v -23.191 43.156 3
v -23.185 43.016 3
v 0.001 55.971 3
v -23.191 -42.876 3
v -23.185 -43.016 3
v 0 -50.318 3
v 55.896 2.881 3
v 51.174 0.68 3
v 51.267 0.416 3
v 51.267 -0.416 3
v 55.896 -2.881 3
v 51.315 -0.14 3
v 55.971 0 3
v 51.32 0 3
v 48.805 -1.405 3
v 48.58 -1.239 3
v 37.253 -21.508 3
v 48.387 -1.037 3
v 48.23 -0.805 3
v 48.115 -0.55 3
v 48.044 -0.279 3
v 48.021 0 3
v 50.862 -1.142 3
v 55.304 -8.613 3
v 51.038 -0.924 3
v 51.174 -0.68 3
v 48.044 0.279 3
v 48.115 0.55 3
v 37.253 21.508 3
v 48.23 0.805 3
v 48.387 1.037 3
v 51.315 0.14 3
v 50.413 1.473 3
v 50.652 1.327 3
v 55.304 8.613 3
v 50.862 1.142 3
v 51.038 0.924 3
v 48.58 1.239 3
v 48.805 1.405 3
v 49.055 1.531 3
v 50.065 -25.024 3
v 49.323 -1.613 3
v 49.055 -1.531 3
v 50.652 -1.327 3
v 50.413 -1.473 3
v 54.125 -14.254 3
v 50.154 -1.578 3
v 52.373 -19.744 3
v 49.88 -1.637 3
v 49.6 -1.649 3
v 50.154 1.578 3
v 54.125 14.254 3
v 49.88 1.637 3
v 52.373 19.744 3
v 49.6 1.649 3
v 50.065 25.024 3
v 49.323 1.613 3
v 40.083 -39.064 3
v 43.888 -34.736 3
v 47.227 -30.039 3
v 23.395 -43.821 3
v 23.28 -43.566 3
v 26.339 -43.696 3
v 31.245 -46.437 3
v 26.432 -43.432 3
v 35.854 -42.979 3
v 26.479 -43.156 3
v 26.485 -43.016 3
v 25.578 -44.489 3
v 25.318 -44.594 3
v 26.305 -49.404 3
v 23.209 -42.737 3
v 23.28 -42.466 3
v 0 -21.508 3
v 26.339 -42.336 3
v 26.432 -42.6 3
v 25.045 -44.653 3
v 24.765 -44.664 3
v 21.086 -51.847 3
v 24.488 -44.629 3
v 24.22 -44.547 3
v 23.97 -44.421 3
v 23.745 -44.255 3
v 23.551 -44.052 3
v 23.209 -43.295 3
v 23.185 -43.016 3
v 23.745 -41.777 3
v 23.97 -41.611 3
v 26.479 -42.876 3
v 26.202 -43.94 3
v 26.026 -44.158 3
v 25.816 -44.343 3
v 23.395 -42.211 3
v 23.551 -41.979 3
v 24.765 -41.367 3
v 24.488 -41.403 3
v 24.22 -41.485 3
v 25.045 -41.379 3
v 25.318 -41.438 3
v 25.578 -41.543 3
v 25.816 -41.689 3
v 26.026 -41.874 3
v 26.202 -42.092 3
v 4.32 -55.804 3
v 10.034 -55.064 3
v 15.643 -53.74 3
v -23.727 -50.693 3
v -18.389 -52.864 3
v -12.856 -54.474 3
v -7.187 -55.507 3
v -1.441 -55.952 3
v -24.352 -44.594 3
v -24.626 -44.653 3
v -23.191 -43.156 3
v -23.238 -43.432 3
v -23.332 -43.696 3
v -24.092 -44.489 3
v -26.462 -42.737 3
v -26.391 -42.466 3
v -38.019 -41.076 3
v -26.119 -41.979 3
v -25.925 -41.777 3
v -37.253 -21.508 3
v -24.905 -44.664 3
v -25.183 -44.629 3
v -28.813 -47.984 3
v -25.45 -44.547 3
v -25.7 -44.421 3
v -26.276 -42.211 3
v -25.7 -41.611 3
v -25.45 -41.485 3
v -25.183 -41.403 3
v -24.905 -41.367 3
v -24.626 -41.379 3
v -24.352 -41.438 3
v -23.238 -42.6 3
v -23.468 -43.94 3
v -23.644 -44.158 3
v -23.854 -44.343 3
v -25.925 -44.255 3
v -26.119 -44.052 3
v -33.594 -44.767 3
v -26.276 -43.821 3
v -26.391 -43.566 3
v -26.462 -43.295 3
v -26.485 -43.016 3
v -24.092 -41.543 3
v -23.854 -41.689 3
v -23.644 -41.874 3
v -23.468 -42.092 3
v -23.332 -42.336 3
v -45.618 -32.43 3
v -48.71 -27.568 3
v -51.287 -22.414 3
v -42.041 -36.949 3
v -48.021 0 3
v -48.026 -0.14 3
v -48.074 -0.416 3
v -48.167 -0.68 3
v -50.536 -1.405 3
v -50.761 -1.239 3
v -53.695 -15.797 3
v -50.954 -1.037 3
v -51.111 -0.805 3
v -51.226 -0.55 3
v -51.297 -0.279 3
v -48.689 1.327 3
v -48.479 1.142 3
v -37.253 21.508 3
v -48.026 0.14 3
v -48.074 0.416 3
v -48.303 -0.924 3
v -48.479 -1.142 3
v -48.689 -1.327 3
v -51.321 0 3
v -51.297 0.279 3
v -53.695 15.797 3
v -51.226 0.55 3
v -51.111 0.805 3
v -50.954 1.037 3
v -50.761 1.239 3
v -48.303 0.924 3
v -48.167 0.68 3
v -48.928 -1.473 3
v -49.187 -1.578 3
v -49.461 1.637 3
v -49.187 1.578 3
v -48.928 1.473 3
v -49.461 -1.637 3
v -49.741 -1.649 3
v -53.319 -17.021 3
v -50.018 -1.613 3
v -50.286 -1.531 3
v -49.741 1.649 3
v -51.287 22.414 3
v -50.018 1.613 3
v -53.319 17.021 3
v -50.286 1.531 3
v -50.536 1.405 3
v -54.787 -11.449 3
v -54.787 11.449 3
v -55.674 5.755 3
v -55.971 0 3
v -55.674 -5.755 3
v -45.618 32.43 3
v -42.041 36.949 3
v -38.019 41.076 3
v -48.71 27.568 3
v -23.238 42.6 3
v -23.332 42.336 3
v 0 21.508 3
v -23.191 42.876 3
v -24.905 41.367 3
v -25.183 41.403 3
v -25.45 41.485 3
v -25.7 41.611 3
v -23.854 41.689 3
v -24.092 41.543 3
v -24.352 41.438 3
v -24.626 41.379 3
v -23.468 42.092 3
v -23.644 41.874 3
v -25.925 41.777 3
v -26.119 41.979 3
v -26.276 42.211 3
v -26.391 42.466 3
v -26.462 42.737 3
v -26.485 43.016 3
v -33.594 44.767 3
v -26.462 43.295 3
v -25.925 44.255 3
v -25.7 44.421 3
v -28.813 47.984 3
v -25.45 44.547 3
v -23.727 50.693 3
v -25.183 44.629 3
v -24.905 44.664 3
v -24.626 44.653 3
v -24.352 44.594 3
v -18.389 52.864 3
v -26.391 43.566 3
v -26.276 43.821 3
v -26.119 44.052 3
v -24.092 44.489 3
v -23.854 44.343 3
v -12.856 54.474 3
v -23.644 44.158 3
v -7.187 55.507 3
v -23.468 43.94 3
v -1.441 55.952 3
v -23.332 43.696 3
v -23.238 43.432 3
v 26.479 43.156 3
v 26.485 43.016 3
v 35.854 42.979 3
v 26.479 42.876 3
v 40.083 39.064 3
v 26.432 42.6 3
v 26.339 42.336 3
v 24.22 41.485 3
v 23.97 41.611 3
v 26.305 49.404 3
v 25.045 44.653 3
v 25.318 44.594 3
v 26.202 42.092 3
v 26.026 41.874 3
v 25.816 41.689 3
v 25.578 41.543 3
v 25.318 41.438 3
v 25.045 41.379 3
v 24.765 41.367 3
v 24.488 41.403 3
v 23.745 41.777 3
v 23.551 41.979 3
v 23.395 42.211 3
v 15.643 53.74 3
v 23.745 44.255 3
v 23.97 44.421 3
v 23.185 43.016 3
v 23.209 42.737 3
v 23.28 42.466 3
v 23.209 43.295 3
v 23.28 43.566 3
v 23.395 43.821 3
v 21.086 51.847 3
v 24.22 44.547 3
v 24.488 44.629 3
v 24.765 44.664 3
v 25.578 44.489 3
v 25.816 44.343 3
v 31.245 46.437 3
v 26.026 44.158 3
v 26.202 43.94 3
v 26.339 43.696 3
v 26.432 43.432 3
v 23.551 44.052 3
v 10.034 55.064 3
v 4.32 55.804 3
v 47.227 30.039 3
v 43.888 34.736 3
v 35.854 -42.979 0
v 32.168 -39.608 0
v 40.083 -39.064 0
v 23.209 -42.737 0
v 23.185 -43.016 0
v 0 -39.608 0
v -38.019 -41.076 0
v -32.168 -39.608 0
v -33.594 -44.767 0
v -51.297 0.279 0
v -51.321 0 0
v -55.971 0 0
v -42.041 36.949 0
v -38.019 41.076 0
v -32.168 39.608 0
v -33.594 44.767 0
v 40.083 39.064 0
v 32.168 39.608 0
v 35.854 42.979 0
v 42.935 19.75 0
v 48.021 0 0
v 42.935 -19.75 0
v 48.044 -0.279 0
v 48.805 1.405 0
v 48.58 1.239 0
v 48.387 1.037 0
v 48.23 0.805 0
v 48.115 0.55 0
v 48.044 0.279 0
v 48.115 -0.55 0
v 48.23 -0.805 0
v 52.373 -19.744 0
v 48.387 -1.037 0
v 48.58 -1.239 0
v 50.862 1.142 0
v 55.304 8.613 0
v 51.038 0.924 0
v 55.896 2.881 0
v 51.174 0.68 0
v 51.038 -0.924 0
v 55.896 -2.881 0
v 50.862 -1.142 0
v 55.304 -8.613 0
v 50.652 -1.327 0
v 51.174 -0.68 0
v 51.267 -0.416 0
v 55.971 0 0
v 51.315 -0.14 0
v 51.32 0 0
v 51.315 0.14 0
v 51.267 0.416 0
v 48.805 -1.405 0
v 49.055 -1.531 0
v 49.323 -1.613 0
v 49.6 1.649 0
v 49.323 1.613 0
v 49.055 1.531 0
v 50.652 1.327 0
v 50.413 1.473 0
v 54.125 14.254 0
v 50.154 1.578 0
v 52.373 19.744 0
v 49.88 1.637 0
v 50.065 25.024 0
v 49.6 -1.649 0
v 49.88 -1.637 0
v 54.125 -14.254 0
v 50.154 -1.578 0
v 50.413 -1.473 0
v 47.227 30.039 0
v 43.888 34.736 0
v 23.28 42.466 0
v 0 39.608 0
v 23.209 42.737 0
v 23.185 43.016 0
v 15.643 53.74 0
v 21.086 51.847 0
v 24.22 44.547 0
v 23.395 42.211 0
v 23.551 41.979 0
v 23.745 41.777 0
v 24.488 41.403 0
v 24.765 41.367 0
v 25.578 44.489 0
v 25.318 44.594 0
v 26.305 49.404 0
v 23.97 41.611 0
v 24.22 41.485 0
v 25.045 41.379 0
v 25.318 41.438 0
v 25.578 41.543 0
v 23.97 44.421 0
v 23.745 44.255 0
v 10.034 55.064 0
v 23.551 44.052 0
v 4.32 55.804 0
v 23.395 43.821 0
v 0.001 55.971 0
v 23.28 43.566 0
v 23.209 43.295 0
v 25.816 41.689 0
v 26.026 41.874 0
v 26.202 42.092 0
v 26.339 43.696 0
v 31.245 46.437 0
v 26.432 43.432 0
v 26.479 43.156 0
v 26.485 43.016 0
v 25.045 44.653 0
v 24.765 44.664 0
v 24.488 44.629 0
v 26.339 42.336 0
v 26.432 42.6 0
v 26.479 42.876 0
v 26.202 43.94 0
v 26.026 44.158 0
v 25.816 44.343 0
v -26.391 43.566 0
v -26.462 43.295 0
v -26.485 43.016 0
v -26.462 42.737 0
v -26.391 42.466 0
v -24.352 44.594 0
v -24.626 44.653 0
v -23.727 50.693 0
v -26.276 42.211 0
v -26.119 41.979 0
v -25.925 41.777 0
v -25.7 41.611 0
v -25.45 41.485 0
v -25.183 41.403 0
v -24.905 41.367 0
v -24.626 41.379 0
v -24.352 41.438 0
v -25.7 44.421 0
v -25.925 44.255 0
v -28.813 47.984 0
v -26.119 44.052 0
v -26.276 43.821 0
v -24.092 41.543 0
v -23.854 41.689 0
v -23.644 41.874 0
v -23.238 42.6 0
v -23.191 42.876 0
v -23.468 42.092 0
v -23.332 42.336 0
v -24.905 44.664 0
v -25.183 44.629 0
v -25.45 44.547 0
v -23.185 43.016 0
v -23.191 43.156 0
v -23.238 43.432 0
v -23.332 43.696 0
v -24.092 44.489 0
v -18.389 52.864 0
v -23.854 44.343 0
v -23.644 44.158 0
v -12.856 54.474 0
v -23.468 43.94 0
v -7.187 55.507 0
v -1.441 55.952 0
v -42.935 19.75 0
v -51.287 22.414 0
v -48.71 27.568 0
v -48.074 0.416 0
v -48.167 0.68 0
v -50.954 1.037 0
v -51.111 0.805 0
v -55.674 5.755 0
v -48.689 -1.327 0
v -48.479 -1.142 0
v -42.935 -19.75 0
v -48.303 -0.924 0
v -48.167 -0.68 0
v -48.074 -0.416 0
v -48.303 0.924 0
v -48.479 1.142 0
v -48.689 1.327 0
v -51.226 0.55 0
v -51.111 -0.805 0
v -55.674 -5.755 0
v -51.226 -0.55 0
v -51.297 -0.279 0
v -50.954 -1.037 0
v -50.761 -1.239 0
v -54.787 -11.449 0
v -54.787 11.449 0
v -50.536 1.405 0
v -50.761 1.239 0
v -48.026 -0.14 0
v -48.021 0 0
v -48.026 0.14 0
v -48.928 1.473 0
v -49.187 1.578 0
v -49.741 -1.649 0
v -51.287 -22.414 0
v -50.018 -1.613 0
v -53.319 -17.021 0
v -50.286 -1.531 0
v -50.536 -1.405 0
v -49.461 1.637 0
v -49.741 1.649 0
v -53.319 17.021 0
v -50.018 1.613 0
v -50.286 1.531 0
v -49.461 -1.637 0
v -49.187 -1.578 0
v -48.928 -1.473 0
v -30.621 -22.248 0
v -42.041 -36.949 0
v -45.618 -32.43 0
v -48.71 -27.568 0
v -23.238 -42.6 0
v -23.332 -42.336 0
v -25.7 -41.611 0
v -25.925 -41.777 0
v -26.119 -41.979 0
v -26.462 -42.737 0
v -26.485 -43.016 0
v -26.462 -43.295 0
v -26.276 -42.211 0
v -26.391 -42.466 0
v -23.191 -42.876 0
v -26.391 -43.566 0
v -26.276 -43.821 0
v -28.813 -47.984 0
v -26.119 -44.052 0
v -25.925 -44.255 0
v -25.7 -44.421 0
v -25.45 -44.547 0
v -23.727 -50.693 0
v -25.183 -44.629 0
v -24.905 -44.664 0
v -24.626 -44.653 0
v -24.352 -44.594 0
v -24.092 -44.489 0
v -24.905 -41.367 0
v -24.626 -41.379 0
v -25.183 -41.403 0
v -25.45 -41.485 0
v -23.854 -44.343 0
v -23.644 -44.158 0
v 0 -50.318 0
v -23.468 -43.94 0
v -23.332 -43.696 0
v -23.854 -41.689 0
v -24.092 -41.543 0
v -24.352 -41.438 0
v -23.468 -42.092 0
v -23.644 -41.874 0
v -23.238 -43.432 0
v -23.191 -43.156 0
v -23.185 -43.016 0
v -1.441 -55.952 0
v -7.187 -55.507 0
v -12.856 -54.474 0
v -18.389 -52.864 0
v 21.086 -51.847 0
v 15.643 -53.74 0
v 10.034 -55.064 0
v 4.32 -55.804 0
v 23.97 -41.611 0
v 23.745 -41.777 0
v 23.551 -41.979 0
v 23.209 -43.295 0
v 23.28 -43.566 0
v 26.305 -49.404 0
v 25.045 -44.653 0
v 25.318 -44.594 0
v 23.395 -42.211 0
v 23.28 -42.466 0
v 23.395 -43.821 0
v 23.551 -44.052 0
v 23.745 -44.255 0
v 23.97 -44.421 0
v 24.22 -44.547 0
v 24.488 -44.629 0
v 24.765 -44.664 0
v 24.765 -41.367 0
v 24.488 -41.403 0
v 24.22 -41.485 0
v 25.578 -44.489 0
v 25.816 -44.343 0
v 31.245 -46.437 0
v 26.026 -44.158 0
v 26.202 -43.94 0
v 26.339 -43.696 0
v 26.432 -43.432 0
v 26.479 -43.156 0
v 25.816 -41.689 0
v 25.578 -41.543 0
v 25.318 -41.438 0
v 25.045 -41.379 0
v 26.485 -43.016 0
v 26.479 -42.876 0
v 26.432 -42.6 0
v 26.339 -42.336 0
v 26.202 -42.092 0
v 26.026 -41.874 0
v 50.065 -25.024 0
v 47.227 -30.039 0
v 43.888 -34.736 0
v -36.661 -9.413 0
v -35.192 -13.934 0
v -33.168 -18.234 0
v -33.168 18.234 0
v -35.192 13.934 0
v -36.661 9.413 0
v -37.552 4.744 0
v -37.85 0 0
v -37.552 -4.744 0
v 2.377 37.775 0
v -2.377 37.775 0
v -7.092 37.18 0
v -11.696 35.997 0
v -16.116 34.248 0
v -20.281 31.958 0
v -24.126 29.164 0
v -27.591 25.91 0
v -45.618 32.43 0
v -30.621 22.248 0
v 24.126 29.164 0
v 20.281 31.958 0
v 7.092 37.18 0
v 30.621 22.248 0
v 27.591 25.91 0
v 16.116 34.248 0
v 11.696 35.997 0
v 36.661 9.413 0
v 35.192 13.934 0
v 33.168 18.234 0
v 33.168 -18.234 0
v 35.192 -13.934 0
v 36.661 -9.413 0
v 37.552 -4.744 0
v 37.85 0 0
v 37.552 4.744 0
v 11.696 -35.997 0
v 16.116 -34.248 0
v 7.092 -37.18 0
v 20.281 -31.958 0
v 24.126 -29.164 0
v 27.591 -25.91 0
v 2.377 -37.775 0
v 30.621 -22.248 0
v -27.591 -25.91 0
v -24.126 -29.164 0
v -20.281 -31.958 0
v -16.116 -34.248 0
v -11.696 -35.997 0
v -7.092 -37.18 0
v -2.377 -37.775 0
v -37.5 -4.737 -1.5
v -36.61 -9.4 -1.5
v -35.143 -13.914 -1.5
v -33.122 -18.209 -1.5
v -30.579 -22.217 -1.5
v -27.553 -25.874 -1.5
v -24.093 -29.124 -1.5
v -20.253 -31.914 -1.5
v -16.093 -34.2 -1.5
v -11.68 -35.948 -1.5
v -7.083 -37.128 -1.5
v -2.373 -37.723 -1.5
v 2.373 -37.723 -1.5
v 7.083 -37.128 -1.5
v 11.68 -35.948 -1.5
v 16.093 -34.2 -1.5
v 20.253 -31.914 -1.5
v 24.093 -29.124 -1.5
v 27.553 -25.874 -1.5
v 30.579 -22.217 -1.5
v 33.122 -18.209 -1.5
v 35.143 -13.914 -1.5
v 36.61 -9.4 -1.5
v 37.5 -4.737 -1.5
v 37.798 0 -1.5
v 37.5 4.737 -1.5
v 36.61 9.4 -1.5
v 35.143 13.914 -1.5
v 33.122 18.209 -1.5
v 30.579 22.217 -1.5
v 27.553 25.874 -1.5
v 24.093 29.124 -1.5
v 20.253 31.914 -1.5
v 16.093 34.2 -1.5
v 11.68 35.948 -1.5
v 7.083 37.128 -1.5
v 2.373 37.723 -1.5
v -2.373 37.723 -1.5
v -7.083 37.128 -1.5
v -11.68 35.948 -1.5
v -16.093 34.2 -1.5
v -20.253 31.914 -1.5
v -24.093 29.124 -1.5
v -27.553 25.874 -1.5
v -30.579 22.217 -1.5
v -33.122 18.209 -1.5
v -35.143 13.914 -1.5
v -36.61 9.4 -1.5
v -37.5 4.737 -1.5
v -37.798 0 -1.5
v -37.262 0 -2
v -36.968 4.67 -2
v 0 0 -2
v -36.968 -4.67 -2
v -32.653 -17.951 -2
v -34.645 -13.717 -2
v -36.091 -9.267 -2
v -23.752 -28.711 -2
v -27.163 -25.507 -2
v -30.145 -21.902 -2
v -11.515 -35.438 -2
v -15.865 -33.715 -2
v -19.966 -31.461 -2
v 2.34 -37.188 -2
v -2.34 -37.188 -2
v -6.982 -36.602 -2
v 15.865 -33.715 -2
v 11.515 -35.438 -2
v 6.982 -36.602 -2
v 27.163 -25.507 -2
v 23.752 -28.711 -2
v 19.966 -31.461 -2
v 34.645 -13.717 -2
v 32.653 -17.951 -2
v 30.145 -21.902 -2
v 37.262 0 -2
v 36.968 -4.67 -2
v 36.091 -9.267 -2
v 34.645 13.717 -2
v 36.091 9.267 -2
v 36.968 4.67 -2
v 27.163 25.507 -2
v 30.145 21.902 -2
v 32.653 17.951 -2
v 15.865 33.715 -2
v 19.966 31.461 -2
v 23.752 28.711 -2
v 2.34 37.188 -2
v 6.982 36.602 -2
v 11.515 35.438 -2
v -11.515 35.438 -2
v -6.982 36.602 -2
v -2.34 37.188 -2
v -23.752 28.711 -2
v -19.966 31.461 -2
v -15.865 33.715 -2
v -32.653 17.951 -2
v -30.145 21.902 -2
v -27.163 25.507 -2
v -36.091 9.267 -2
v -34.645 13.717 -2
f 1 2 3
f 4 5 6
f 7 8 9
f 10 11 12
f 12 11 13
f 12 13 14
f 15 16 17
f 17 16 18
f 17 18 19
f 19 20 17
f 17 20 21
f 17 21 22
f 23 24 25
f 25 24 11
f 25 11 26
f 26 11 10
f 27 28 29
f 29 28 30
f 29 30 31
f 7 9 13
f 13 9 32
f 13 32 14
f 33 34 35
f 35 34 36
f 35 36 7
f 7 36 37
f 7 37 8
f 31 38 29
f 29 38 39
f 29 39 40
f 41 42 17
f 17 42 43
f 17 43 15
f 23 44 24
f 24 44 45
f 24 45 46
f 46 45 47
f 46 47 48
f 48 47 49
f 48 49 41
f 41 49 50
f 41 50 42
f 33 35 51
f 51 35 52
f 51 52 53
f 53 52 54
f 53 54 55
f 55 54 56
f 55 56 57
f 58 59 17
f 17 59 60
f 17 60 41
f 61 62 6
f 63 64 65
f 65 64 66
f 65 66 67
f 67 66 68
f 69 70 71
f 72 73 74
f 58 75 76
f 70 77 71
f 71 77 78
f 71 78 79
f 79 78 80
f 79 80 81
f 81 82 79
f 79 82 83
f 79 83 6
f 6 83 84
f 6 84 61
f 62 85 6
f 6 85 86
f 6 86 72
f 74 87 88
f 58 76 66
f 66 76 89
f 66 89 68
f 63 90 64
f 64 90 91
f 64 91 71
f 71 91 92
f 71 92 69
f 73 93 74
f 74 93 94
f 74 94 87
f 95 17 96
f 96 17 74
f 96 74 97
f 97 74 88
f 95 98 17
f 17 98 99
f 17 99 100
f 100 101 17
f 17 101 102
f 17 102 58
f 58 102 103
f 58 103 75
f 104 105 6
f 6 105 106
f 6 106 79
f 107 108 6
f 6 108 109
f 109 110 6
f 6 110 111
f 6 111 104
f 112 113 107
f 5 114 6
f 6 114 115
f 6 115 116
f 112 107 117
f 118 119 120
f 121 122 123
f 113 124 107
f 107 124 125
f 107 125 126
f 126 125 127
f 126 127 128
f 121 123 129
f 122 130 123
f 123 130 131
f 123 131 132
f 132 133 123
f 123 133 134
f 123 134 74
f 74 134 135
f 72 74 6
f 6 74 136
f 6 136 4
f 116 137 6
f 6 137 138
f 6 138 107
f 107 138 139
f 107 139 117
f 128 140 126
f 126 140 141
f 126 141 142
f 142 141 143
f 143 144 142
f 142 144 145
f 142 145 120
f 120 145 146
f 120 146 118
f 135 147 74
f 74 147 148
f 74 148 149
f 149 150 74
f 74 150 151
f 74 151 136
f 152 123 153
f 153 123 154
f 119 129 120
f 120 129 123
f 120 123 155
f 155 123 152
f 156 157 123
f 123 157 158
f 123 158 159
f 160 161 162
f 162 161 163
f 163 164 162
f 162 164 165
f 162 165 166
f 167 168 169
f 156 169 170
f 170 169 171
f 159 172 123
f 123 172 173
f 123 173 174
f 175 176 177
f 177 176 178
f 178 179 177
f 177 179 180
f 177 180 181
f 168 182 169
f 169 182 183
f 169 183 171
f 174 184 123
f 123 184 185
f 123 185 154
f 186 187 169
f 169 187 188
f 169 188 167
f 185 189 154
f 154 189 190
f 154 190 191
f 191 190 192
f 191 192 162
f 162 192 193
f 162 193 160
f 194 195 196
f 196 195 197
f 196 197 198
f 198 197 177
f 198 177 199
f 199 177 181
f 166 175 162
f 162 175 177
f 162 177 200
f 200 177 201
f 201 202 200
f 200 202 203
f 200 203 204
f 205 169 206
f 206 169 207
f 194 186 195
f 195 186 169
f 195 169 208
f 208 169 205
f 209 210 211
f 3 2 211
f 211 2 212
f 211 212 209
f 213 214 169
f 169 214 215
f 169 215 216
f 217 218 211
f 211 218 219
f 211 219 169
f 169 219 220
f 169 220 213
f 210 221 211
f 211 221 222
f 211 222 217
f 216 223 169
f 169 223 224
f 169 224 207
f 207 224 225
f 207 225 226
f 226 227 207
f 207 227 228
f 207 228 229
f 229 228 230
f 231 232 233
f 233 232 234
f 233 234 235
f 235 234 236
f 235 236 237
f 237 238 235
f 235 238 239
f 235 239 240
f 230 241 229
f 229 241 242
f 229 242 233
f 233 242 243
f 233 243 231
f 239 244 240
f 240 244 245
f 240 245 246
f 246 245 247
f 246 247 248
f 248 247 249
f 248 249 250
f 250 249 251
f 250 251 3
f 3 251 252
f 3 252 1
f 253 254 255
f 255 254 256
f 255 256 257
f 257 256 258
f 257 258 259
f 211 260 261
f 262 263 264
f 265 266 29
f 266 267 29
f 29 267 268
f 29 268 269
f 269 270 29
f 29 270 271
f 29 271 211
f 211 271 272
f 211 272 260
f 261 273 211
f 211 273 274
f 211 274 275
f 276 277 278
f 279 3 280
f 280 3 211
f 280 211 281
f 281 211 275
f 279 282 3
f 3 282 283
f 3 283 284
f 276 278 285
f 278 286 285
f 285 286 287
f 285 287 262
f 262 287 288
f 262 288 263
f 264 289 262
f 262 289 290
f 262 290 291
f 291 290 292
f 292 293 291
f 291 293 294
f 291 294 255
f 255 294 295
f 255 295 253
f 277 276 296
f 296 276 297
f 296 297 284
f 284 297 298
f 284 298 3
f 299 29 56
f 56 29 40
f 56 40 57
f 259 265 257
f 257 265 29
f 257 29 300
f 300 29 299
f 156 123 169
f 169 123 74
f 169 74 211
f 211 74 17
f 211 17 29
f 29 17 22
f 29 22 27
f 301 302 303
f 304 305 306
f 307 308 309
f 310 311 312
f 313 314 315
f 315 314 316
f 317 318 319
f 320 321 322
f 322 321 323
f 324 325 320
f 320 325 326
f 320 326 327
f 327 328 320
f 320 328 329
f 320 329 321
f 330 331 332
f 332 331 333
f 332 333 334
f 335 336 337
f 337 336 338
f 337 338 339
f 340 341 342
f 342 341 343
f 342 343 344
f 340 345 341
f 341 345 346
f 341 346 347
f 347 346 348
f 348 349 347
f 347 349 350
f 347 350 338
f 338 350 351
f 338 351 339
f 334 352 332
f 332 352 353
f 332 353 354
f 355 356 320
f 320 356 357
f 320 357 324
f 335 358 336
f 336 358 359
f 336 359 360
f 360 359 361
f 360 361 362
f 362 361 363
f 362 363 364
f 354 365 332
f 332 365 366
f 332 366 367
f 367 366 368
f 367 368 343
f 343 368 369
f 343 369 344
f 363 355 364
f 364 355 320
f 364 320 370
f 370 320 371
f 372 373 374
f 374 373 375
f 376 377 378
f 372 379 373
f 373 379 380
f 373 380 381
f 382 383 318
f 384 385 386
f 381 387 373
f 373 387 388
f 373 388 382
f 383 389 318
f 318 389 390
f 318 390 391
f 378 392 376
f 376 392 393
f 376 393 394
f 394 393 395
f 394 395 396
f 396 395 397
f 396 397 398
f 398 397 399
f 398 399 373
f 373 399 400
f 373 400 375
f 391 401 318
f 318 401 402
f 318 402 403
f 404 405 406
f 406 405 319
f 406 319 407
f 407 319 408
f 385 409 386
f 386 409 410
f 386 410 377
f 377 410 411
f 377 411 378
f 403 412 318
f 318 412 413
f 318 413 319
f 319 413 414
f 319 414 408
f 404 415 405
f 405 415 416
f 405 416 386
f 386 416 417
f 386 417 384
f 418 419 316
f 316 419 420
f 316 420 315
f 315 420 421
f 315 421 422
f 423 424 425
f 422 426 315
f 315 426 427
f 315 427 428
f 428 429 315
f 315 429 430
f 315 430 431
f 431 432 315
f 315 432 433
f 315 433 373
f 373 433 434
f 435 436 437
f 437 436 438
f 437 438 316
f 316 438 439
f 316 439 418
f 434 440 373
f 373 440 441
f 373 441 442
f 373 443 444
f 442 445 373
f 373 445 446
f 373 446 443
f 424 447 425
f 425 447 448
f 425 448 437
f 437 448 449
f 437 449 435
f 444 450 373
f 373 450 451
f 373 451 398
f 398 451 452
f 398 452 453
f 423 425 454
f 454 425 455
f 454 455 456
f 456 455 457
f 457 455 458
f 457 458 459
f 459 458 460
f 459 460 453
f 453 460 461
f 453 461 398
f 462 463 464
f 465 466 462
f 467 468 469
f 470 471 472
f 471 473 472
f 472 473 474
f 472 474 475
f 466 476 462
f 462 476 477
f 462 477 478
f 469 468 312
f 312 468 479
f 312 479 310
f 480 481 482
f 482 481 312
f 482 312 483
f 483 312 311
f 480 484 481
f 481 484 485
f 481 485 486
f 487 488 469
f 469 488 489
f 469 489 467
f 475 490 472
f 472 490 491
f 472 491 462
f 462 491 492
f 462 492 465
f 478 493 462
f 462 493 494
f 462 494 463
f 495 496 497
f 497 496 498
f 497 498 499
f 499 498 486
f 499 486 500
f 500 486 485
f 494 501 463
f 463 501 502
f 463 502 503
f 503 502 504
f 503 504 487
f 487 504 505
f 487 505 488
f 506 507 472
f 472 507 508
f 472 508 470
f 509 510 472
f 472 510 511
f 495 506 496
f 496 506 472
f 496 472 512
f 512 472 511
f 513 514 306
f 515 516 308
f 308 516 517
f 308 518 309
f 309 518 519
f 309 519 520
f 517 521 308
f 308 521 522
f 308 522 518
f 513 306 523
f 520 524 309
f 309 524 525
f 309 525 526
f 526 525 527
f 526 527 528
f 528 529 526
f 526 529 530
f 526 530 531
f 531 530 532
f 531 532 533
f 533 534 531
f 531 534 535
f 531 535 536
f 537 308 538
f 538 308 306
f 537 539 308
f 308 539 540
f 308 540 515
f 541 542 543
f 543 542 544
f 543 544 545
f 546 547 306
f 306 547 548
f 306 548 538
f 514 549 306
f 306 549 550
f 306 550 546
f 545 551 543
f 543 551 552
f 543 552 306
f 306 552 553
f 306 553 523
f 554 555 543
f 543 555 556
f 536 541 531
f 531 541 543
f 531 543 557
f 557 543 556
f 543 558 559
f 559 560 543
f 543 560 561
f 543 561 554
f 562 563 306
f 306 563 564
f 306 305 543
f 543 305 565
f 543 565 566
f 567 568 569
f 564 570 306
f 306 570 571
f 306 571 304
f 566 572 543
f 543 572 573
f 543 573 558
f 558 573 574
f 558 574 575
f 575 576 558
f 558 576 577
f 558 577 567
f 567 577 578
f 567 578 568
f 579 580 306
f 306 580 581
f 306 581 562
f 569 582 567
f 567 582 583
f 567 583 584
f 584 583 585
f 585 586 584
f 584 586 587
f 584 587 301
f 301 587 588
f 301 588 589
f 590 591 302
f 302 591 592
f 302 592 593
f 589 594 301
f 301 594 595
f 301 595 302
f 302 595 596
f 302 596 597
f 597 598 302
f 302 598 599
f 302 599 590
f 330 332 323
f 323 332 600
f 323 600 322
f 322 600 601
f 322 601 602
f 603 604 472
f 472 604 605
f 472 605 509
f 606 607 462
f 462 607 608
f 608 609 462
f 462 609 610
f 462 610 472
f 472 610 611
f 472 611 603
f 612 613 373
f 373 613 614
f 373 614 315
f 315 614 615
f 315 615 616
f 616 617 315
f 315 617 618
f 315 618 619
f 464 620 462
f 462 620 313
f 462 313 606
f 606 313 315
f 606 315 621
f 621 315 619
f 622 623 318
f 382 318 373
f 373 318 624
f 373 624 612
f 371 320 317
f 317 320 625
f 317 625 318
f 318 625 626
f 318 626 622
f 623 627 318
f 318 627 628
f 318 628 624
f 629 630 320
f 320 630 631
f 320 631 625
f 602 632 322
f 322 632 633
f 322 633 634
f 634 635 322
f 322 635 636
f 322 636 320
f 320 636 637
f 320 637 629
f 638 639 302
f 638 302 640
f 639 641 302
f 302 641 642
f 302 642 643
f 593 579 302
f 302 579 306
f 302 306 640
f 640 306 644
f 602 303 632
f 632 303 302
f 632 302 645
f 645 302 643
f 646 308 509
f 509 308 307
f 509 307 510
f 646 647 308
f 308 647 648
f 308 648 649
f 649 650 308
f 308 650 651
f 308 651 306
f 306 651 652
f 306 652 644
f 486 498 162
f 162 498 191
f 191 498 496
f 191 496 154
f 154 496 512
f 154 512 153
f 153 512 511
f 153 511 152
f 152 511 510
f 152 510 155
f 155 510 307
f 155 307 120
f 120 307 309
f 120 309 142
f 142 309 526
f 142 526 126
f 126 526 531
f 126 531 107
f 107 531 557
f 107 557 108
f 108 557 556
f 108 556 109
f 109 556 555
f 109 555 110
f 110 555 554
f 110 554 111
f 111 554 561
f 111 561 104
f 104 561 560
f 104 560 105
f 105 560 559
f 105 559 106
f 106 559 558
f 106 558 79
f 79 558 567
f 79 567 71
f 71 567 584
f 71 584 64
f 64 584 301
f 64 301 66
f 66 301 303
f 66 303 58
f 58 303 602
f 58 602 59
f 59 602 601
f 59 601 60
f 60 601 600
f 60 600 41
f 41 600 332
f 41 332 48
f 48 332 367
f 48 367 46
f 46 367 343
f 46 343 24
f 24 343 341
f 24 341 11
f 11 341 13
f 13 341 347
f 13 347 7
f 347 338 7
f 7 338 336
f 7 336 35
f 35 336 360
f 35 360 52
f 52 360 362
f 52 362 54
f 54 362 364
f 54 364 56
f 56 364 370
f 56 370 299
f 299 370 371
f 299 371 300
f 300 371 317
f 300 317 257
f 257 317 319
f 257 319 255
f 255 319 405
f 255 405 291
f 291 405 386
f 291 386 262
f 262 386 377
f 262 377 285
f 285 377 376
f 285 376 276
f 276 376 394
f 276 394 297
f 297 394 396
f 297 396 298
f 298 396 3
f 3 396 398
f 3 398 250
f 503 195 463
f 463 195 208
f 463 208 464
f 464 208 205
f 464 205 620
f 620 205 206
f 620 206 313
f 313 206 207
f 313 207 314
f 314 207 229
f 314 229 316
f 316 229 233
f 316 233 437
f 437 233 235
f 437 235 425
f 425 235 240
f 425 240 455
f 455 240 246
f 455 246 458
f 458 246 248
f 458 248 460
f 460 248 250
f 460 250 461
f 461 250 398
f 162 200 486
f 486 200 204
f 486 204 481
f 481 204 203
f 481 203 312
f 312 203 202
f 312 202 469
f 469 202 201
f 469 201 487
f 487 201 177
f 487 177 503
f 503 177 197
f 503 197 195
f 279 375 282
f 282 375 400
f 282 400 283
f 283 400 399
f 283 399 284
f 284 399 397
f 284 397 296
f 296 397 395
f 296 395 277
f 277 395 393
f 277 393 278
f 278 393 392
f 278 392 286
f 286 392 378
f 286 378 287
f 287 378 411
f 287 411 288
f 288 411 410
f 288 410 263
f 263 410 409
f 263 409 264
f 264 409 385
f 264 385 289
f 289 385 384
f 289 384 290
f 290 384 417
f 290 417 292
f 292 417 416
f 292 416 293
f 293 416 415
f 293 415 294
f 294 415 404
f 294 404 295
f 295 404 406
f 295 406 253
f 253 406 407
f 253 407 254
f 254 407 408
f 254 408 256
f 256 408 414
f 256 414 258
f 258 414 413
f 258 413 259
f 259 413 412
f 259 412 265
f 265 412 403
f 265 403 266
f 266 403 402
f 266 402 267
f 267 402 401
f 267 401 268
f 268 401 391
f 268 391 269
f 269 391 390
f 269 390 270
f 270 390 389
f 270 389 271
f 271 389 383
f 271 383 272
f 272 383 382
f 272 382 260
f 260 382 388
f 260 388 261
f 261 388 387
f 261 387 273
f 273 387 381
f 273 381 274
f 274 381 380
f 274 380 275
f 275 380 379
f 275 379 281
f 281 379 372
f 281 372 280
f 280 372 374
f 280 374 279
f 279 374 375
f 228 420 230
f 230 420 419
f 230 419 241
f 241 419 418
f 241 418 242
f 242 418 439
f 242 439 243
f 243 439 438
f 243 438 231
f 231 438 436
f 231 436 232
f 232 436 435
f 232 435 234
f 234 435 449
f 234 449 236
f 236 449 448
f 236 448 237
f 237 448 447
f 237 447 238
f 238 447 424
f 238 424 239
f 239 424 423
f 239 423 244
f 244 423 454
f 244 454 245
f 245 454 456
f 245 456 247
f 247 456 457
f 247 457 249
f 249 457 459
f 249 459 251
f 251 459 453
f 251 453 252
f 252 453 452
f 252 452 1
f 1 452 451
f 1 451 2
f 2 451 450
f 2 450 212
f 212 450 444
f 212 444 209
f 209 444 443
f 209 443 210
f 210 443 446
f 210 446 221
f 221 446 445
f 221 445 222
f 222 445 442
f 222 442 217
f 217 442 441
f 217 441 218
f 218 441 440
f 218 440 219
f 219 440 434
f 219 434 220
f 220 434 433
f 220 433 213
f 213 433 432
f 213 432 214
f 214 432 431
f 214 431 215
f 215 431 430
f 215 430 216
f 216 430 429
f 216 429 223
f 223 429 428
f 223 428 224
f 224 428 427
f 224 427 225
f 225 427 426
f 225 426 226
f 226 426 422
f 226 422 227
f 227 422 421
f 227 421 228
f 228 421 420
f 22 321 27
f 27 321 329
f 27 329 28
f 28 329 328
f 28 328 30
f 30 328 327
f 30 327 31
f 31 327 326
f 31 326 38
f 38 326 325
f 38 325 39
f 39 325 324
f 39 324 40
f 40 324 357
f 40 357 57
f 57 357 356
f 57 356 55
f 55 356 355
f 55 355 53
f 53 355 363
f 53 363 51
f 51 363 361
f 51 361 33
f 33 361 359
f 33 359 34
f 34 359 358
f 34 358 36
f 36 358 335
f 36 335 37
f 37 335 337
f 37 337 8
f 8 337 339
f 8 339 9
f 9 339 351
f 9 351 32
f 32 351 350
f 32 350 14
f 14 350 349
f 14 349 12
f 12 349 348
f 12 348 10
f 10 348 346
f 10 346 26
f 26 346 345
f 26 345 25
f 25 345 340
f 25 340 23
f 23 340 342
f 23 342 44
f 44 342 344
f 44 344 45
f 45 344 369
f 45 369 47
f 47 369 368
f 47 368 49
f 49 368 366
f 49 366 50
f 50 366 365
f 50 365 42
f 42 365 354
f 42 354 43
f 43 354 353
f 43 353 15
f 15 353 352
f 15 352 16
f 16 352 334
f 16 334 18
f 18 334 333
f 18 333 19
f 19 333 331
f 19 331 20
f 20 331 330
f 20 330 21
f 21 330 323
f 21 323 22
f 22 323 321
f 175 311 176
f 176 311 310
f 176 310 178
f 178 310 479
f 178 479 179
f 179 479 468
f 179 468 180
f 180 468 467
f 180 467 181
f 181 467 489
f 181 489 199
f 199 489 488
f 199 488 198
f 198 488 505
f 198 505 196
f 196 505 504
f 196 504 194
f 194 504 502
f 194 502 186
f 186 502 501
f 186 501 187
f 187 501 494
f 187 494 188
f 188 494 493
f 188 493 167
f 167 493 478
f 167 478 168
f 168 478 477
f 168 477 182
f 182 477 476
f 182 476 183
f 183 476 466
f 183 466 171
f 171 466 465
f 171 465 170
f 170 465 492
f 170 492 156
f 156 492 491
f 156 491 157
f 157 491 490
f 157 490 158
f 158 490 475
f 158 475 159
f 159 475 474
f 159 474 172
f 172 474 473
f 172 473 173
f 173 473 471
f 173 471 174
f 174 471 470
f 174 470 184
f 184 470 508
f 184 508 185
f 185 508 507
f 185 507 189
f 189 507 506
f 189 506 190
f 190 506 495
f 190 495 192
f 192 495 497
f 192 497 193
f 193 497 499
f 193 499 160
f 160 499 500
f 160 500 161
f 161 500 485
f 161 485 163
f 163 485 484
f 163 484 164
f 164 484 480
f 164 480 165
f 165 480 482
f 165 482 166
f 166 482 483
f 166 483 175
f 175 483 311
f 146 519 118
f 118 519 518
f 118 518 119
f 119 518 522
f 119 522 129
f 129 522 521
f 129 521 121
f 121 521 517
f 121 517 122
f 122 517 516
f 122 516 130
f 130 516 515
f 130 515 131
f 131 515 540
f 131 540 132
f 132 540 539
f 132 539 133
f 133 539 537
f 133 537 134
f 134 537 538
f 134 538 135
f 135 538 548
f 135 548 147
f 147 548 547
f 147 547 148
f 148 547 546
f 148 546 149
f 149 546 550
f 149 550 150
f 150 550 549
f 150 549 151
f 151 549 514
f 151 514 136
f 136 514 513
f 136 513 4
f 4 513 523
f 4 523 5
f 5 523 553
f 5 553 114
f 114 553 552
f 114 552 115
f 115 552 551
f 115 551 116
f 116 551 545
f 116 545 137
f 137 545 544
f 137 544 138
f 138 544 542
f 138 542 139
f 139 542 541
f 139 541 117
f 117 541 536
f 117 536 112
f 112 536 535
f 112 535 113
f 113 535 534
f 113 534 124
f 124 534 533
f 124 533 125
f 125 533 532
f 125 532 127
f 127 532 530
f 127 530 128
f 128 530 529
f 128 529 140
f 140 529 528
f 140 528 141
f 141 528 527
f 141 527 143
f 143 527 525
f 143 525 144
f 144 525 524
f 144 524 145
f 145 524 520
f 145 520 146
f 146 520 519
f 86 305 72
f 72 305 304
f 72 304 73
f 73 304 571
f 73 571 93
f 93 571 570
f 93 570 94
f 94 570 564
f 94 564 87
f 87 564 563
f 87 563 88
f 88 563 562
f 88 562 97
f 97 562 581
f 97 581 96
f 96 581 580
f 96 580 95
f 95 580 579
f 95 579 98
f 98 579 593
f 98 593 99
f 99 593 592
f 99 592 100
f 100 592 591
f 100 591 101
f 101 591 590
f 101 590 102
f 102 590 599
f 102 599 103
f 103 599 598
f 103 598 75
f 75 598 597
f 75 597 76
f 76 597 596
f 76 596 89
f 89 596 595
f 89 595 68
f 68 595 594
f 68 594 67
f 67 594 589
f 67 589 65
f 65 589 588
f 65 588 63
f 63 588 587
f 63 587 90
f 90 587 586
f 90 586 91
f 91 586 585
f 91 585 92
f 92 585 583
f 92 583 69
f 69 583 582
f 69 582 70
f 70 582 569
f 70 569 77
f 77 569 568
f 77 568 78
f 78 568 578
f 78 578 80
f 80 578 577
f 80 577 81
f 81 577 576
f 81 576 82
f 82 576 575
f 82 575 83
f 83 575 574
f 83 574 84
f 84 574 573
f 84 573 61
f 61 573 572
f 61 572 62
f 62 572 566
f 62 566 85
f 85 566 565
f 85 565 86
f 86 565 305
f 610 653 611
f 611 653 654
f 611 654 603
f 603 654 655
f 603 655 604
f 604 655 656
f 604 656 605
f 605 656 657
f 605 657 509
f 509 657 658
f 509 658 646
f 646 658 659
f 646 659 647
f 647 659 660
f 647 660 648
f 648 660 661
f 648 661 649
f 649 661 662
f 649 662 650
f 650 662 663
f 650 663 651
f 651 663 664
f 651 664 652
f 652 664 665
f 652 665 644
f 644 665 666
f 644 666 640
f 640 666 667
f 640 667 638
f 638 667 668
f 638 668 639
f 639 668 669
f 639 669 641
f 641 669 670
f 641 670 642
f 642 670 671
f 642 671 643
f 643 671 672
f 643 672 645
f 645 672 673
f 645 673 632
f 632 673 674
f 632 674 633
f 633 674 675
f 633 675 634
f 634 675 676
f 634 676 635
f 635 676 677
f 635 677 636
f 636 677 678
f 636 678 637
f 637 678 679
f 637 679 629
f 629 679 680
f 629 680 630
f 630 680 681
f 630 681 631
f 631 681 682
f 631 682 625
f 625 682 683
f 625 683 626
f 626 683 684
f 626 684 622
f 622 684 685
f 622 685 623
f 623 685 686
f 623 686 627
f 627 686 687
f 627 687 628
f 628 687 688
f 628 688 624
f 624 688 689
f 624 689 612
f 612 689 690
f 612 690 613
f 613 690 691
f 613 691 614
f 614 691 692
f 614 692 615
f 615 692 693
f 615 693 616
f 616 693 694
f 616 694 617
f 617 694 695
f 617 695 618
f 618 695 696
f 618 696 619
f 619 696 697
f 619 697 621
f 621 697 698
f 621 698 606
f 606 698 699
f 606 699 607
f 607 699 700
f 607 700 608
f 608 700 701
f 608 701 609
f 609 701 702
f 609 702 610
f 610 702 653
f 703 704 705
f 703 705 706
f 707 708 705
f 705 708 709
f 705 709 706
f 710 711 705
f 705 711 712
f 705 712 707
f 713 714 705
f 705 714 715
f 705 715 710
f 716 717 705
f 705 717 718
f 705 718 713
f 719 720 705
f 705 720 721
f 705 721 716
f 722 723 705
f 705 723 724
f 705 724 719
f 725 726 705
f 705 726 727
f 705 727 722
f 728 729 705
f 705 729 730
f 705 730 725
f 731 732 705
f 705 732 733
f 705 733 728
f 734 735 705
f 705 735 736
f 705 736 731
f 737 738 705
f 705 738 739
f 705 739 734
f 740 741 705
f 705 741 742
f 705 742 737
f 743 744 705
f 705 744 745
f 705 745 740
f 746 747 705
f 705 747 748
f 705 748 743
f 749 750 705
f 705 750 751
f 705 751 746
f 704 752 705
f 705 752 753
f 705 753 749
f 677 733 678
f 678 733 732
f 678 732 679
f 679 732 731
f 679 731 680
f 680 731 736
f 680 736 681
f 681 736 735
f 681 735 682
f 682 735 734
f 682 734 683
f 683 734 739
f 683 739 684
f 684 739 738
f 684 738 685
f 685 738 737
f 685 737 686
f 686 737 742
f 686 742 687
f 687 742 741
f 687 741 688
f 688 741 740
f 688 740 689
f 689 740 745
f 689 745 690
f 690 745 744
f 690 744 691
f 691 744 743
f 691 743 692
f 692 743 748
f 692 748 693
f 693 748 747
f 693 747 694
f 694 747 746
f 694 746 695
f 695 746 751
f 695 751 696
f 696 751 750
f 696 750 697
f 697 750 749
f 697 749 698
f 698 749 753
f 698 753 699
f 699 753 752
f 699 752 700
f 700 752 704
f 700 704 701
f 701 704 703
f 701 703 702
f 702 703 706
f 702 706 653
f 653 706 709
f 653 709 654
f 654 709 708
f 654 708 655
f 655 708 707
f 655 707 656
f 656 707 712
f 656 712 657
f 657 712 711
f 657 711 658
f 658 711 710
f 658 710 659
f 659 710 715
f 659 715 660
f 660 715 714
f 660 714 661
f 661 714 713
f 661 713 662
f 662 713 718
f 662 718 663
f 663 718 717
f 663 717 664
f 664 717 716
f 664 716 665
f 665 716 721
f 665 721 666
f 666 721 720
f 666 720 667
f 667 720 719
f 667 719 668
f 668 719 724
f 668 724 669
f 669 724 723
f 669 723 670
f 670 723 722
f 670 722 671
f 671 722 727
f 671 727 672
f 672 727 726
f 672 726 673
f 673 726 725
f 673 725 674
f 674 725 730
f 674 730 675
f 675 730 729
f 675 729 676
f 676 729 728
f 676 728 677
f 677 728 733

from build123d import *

# Parameters (mm, degrees)
SKETCH1_R           = 55.9705
SKETCH1_R_2         = 1.65
BOSS_EXTRUDE1_DEPTH = 3
SKETCH3_R           = 37.849999992
BOSS_EXTRUDE2_DEPTH = 2
BOSS_EXTRUDE2_TAPER = 2
CHAMFER1_SIZE       = 0.5
CHAMFER1_SIZE_2     = 0.518407978


with BuildPart() as part:
    # Sketch1 → Boss-Extrude1 (new body)
    with BuildSketch(Plane.XY):
        Circle(SKETCH1_R)
        with Locations((49.6705, 0)):
            Circle(SKETCH1_R_2, mode=Mode.SUBTRACT)
        with Locations((24.83525, 43.015914819)):
            Circle(SKETCH1_R_2, mode=Mode.SUBTRACT)
        with Locations((-24.83525, 43.015914819)):
            Circle(SKETCH1_R_2, mode=Mode.SUBTRACT)
        with Locations((-49.6705, 0)):
            Circle(SKETCH1_R_2, mode=Mode.SUBTRACT)
        with Locations((-24.83525, -43.015914819)):
            Circle(SKETCH1_R_2, mode=Mode.SUBTRACT)
        with Locations((24.83525, -43.015914819)):
            Circle(SKETCH1_R_2, mode=Mode.SUBTRACT)
    extrude(amount=BOSS_EXTRUDE1_DEPTH)

    # Sketch3 → Boss-Extrude2 (add)
    with BuildSketch(Plane(origin=(0, 0, 0), x_dir=(-1, 0, 0), z_dir=(0, 0, -1))):
        Circle(SKETCH3_R)
    extrude(amount=BOSS_EXTRUDE2_DEPTH, taper=BOSS_EXTRUDE2_TAPER)

    # Chamfer1
    # the kernel refuses this chamfer: 0.518407978, 0.5 mm, written as the material it takes off along each edge
    with BuildSketch(Plane(origin=(0, 0, -2), x_dir=(-1, 0, 0), z_dir=(0, 1, 0))) as chamfer1_piece_1:
        Polygon((37.780158453 + CHAMFER1_SIZE * 0.0348994967025, CHAMFER1_SIZE * 0.999390827019), (37.780158453 - CHAMFER1_SIZE_2, 0), (37.780158453, 0), align=None)
    revolve(axis=Axis((0, 0, -2), (0, 0, 1)), mode=Mode.SUBTRACT)


solid = part.part
